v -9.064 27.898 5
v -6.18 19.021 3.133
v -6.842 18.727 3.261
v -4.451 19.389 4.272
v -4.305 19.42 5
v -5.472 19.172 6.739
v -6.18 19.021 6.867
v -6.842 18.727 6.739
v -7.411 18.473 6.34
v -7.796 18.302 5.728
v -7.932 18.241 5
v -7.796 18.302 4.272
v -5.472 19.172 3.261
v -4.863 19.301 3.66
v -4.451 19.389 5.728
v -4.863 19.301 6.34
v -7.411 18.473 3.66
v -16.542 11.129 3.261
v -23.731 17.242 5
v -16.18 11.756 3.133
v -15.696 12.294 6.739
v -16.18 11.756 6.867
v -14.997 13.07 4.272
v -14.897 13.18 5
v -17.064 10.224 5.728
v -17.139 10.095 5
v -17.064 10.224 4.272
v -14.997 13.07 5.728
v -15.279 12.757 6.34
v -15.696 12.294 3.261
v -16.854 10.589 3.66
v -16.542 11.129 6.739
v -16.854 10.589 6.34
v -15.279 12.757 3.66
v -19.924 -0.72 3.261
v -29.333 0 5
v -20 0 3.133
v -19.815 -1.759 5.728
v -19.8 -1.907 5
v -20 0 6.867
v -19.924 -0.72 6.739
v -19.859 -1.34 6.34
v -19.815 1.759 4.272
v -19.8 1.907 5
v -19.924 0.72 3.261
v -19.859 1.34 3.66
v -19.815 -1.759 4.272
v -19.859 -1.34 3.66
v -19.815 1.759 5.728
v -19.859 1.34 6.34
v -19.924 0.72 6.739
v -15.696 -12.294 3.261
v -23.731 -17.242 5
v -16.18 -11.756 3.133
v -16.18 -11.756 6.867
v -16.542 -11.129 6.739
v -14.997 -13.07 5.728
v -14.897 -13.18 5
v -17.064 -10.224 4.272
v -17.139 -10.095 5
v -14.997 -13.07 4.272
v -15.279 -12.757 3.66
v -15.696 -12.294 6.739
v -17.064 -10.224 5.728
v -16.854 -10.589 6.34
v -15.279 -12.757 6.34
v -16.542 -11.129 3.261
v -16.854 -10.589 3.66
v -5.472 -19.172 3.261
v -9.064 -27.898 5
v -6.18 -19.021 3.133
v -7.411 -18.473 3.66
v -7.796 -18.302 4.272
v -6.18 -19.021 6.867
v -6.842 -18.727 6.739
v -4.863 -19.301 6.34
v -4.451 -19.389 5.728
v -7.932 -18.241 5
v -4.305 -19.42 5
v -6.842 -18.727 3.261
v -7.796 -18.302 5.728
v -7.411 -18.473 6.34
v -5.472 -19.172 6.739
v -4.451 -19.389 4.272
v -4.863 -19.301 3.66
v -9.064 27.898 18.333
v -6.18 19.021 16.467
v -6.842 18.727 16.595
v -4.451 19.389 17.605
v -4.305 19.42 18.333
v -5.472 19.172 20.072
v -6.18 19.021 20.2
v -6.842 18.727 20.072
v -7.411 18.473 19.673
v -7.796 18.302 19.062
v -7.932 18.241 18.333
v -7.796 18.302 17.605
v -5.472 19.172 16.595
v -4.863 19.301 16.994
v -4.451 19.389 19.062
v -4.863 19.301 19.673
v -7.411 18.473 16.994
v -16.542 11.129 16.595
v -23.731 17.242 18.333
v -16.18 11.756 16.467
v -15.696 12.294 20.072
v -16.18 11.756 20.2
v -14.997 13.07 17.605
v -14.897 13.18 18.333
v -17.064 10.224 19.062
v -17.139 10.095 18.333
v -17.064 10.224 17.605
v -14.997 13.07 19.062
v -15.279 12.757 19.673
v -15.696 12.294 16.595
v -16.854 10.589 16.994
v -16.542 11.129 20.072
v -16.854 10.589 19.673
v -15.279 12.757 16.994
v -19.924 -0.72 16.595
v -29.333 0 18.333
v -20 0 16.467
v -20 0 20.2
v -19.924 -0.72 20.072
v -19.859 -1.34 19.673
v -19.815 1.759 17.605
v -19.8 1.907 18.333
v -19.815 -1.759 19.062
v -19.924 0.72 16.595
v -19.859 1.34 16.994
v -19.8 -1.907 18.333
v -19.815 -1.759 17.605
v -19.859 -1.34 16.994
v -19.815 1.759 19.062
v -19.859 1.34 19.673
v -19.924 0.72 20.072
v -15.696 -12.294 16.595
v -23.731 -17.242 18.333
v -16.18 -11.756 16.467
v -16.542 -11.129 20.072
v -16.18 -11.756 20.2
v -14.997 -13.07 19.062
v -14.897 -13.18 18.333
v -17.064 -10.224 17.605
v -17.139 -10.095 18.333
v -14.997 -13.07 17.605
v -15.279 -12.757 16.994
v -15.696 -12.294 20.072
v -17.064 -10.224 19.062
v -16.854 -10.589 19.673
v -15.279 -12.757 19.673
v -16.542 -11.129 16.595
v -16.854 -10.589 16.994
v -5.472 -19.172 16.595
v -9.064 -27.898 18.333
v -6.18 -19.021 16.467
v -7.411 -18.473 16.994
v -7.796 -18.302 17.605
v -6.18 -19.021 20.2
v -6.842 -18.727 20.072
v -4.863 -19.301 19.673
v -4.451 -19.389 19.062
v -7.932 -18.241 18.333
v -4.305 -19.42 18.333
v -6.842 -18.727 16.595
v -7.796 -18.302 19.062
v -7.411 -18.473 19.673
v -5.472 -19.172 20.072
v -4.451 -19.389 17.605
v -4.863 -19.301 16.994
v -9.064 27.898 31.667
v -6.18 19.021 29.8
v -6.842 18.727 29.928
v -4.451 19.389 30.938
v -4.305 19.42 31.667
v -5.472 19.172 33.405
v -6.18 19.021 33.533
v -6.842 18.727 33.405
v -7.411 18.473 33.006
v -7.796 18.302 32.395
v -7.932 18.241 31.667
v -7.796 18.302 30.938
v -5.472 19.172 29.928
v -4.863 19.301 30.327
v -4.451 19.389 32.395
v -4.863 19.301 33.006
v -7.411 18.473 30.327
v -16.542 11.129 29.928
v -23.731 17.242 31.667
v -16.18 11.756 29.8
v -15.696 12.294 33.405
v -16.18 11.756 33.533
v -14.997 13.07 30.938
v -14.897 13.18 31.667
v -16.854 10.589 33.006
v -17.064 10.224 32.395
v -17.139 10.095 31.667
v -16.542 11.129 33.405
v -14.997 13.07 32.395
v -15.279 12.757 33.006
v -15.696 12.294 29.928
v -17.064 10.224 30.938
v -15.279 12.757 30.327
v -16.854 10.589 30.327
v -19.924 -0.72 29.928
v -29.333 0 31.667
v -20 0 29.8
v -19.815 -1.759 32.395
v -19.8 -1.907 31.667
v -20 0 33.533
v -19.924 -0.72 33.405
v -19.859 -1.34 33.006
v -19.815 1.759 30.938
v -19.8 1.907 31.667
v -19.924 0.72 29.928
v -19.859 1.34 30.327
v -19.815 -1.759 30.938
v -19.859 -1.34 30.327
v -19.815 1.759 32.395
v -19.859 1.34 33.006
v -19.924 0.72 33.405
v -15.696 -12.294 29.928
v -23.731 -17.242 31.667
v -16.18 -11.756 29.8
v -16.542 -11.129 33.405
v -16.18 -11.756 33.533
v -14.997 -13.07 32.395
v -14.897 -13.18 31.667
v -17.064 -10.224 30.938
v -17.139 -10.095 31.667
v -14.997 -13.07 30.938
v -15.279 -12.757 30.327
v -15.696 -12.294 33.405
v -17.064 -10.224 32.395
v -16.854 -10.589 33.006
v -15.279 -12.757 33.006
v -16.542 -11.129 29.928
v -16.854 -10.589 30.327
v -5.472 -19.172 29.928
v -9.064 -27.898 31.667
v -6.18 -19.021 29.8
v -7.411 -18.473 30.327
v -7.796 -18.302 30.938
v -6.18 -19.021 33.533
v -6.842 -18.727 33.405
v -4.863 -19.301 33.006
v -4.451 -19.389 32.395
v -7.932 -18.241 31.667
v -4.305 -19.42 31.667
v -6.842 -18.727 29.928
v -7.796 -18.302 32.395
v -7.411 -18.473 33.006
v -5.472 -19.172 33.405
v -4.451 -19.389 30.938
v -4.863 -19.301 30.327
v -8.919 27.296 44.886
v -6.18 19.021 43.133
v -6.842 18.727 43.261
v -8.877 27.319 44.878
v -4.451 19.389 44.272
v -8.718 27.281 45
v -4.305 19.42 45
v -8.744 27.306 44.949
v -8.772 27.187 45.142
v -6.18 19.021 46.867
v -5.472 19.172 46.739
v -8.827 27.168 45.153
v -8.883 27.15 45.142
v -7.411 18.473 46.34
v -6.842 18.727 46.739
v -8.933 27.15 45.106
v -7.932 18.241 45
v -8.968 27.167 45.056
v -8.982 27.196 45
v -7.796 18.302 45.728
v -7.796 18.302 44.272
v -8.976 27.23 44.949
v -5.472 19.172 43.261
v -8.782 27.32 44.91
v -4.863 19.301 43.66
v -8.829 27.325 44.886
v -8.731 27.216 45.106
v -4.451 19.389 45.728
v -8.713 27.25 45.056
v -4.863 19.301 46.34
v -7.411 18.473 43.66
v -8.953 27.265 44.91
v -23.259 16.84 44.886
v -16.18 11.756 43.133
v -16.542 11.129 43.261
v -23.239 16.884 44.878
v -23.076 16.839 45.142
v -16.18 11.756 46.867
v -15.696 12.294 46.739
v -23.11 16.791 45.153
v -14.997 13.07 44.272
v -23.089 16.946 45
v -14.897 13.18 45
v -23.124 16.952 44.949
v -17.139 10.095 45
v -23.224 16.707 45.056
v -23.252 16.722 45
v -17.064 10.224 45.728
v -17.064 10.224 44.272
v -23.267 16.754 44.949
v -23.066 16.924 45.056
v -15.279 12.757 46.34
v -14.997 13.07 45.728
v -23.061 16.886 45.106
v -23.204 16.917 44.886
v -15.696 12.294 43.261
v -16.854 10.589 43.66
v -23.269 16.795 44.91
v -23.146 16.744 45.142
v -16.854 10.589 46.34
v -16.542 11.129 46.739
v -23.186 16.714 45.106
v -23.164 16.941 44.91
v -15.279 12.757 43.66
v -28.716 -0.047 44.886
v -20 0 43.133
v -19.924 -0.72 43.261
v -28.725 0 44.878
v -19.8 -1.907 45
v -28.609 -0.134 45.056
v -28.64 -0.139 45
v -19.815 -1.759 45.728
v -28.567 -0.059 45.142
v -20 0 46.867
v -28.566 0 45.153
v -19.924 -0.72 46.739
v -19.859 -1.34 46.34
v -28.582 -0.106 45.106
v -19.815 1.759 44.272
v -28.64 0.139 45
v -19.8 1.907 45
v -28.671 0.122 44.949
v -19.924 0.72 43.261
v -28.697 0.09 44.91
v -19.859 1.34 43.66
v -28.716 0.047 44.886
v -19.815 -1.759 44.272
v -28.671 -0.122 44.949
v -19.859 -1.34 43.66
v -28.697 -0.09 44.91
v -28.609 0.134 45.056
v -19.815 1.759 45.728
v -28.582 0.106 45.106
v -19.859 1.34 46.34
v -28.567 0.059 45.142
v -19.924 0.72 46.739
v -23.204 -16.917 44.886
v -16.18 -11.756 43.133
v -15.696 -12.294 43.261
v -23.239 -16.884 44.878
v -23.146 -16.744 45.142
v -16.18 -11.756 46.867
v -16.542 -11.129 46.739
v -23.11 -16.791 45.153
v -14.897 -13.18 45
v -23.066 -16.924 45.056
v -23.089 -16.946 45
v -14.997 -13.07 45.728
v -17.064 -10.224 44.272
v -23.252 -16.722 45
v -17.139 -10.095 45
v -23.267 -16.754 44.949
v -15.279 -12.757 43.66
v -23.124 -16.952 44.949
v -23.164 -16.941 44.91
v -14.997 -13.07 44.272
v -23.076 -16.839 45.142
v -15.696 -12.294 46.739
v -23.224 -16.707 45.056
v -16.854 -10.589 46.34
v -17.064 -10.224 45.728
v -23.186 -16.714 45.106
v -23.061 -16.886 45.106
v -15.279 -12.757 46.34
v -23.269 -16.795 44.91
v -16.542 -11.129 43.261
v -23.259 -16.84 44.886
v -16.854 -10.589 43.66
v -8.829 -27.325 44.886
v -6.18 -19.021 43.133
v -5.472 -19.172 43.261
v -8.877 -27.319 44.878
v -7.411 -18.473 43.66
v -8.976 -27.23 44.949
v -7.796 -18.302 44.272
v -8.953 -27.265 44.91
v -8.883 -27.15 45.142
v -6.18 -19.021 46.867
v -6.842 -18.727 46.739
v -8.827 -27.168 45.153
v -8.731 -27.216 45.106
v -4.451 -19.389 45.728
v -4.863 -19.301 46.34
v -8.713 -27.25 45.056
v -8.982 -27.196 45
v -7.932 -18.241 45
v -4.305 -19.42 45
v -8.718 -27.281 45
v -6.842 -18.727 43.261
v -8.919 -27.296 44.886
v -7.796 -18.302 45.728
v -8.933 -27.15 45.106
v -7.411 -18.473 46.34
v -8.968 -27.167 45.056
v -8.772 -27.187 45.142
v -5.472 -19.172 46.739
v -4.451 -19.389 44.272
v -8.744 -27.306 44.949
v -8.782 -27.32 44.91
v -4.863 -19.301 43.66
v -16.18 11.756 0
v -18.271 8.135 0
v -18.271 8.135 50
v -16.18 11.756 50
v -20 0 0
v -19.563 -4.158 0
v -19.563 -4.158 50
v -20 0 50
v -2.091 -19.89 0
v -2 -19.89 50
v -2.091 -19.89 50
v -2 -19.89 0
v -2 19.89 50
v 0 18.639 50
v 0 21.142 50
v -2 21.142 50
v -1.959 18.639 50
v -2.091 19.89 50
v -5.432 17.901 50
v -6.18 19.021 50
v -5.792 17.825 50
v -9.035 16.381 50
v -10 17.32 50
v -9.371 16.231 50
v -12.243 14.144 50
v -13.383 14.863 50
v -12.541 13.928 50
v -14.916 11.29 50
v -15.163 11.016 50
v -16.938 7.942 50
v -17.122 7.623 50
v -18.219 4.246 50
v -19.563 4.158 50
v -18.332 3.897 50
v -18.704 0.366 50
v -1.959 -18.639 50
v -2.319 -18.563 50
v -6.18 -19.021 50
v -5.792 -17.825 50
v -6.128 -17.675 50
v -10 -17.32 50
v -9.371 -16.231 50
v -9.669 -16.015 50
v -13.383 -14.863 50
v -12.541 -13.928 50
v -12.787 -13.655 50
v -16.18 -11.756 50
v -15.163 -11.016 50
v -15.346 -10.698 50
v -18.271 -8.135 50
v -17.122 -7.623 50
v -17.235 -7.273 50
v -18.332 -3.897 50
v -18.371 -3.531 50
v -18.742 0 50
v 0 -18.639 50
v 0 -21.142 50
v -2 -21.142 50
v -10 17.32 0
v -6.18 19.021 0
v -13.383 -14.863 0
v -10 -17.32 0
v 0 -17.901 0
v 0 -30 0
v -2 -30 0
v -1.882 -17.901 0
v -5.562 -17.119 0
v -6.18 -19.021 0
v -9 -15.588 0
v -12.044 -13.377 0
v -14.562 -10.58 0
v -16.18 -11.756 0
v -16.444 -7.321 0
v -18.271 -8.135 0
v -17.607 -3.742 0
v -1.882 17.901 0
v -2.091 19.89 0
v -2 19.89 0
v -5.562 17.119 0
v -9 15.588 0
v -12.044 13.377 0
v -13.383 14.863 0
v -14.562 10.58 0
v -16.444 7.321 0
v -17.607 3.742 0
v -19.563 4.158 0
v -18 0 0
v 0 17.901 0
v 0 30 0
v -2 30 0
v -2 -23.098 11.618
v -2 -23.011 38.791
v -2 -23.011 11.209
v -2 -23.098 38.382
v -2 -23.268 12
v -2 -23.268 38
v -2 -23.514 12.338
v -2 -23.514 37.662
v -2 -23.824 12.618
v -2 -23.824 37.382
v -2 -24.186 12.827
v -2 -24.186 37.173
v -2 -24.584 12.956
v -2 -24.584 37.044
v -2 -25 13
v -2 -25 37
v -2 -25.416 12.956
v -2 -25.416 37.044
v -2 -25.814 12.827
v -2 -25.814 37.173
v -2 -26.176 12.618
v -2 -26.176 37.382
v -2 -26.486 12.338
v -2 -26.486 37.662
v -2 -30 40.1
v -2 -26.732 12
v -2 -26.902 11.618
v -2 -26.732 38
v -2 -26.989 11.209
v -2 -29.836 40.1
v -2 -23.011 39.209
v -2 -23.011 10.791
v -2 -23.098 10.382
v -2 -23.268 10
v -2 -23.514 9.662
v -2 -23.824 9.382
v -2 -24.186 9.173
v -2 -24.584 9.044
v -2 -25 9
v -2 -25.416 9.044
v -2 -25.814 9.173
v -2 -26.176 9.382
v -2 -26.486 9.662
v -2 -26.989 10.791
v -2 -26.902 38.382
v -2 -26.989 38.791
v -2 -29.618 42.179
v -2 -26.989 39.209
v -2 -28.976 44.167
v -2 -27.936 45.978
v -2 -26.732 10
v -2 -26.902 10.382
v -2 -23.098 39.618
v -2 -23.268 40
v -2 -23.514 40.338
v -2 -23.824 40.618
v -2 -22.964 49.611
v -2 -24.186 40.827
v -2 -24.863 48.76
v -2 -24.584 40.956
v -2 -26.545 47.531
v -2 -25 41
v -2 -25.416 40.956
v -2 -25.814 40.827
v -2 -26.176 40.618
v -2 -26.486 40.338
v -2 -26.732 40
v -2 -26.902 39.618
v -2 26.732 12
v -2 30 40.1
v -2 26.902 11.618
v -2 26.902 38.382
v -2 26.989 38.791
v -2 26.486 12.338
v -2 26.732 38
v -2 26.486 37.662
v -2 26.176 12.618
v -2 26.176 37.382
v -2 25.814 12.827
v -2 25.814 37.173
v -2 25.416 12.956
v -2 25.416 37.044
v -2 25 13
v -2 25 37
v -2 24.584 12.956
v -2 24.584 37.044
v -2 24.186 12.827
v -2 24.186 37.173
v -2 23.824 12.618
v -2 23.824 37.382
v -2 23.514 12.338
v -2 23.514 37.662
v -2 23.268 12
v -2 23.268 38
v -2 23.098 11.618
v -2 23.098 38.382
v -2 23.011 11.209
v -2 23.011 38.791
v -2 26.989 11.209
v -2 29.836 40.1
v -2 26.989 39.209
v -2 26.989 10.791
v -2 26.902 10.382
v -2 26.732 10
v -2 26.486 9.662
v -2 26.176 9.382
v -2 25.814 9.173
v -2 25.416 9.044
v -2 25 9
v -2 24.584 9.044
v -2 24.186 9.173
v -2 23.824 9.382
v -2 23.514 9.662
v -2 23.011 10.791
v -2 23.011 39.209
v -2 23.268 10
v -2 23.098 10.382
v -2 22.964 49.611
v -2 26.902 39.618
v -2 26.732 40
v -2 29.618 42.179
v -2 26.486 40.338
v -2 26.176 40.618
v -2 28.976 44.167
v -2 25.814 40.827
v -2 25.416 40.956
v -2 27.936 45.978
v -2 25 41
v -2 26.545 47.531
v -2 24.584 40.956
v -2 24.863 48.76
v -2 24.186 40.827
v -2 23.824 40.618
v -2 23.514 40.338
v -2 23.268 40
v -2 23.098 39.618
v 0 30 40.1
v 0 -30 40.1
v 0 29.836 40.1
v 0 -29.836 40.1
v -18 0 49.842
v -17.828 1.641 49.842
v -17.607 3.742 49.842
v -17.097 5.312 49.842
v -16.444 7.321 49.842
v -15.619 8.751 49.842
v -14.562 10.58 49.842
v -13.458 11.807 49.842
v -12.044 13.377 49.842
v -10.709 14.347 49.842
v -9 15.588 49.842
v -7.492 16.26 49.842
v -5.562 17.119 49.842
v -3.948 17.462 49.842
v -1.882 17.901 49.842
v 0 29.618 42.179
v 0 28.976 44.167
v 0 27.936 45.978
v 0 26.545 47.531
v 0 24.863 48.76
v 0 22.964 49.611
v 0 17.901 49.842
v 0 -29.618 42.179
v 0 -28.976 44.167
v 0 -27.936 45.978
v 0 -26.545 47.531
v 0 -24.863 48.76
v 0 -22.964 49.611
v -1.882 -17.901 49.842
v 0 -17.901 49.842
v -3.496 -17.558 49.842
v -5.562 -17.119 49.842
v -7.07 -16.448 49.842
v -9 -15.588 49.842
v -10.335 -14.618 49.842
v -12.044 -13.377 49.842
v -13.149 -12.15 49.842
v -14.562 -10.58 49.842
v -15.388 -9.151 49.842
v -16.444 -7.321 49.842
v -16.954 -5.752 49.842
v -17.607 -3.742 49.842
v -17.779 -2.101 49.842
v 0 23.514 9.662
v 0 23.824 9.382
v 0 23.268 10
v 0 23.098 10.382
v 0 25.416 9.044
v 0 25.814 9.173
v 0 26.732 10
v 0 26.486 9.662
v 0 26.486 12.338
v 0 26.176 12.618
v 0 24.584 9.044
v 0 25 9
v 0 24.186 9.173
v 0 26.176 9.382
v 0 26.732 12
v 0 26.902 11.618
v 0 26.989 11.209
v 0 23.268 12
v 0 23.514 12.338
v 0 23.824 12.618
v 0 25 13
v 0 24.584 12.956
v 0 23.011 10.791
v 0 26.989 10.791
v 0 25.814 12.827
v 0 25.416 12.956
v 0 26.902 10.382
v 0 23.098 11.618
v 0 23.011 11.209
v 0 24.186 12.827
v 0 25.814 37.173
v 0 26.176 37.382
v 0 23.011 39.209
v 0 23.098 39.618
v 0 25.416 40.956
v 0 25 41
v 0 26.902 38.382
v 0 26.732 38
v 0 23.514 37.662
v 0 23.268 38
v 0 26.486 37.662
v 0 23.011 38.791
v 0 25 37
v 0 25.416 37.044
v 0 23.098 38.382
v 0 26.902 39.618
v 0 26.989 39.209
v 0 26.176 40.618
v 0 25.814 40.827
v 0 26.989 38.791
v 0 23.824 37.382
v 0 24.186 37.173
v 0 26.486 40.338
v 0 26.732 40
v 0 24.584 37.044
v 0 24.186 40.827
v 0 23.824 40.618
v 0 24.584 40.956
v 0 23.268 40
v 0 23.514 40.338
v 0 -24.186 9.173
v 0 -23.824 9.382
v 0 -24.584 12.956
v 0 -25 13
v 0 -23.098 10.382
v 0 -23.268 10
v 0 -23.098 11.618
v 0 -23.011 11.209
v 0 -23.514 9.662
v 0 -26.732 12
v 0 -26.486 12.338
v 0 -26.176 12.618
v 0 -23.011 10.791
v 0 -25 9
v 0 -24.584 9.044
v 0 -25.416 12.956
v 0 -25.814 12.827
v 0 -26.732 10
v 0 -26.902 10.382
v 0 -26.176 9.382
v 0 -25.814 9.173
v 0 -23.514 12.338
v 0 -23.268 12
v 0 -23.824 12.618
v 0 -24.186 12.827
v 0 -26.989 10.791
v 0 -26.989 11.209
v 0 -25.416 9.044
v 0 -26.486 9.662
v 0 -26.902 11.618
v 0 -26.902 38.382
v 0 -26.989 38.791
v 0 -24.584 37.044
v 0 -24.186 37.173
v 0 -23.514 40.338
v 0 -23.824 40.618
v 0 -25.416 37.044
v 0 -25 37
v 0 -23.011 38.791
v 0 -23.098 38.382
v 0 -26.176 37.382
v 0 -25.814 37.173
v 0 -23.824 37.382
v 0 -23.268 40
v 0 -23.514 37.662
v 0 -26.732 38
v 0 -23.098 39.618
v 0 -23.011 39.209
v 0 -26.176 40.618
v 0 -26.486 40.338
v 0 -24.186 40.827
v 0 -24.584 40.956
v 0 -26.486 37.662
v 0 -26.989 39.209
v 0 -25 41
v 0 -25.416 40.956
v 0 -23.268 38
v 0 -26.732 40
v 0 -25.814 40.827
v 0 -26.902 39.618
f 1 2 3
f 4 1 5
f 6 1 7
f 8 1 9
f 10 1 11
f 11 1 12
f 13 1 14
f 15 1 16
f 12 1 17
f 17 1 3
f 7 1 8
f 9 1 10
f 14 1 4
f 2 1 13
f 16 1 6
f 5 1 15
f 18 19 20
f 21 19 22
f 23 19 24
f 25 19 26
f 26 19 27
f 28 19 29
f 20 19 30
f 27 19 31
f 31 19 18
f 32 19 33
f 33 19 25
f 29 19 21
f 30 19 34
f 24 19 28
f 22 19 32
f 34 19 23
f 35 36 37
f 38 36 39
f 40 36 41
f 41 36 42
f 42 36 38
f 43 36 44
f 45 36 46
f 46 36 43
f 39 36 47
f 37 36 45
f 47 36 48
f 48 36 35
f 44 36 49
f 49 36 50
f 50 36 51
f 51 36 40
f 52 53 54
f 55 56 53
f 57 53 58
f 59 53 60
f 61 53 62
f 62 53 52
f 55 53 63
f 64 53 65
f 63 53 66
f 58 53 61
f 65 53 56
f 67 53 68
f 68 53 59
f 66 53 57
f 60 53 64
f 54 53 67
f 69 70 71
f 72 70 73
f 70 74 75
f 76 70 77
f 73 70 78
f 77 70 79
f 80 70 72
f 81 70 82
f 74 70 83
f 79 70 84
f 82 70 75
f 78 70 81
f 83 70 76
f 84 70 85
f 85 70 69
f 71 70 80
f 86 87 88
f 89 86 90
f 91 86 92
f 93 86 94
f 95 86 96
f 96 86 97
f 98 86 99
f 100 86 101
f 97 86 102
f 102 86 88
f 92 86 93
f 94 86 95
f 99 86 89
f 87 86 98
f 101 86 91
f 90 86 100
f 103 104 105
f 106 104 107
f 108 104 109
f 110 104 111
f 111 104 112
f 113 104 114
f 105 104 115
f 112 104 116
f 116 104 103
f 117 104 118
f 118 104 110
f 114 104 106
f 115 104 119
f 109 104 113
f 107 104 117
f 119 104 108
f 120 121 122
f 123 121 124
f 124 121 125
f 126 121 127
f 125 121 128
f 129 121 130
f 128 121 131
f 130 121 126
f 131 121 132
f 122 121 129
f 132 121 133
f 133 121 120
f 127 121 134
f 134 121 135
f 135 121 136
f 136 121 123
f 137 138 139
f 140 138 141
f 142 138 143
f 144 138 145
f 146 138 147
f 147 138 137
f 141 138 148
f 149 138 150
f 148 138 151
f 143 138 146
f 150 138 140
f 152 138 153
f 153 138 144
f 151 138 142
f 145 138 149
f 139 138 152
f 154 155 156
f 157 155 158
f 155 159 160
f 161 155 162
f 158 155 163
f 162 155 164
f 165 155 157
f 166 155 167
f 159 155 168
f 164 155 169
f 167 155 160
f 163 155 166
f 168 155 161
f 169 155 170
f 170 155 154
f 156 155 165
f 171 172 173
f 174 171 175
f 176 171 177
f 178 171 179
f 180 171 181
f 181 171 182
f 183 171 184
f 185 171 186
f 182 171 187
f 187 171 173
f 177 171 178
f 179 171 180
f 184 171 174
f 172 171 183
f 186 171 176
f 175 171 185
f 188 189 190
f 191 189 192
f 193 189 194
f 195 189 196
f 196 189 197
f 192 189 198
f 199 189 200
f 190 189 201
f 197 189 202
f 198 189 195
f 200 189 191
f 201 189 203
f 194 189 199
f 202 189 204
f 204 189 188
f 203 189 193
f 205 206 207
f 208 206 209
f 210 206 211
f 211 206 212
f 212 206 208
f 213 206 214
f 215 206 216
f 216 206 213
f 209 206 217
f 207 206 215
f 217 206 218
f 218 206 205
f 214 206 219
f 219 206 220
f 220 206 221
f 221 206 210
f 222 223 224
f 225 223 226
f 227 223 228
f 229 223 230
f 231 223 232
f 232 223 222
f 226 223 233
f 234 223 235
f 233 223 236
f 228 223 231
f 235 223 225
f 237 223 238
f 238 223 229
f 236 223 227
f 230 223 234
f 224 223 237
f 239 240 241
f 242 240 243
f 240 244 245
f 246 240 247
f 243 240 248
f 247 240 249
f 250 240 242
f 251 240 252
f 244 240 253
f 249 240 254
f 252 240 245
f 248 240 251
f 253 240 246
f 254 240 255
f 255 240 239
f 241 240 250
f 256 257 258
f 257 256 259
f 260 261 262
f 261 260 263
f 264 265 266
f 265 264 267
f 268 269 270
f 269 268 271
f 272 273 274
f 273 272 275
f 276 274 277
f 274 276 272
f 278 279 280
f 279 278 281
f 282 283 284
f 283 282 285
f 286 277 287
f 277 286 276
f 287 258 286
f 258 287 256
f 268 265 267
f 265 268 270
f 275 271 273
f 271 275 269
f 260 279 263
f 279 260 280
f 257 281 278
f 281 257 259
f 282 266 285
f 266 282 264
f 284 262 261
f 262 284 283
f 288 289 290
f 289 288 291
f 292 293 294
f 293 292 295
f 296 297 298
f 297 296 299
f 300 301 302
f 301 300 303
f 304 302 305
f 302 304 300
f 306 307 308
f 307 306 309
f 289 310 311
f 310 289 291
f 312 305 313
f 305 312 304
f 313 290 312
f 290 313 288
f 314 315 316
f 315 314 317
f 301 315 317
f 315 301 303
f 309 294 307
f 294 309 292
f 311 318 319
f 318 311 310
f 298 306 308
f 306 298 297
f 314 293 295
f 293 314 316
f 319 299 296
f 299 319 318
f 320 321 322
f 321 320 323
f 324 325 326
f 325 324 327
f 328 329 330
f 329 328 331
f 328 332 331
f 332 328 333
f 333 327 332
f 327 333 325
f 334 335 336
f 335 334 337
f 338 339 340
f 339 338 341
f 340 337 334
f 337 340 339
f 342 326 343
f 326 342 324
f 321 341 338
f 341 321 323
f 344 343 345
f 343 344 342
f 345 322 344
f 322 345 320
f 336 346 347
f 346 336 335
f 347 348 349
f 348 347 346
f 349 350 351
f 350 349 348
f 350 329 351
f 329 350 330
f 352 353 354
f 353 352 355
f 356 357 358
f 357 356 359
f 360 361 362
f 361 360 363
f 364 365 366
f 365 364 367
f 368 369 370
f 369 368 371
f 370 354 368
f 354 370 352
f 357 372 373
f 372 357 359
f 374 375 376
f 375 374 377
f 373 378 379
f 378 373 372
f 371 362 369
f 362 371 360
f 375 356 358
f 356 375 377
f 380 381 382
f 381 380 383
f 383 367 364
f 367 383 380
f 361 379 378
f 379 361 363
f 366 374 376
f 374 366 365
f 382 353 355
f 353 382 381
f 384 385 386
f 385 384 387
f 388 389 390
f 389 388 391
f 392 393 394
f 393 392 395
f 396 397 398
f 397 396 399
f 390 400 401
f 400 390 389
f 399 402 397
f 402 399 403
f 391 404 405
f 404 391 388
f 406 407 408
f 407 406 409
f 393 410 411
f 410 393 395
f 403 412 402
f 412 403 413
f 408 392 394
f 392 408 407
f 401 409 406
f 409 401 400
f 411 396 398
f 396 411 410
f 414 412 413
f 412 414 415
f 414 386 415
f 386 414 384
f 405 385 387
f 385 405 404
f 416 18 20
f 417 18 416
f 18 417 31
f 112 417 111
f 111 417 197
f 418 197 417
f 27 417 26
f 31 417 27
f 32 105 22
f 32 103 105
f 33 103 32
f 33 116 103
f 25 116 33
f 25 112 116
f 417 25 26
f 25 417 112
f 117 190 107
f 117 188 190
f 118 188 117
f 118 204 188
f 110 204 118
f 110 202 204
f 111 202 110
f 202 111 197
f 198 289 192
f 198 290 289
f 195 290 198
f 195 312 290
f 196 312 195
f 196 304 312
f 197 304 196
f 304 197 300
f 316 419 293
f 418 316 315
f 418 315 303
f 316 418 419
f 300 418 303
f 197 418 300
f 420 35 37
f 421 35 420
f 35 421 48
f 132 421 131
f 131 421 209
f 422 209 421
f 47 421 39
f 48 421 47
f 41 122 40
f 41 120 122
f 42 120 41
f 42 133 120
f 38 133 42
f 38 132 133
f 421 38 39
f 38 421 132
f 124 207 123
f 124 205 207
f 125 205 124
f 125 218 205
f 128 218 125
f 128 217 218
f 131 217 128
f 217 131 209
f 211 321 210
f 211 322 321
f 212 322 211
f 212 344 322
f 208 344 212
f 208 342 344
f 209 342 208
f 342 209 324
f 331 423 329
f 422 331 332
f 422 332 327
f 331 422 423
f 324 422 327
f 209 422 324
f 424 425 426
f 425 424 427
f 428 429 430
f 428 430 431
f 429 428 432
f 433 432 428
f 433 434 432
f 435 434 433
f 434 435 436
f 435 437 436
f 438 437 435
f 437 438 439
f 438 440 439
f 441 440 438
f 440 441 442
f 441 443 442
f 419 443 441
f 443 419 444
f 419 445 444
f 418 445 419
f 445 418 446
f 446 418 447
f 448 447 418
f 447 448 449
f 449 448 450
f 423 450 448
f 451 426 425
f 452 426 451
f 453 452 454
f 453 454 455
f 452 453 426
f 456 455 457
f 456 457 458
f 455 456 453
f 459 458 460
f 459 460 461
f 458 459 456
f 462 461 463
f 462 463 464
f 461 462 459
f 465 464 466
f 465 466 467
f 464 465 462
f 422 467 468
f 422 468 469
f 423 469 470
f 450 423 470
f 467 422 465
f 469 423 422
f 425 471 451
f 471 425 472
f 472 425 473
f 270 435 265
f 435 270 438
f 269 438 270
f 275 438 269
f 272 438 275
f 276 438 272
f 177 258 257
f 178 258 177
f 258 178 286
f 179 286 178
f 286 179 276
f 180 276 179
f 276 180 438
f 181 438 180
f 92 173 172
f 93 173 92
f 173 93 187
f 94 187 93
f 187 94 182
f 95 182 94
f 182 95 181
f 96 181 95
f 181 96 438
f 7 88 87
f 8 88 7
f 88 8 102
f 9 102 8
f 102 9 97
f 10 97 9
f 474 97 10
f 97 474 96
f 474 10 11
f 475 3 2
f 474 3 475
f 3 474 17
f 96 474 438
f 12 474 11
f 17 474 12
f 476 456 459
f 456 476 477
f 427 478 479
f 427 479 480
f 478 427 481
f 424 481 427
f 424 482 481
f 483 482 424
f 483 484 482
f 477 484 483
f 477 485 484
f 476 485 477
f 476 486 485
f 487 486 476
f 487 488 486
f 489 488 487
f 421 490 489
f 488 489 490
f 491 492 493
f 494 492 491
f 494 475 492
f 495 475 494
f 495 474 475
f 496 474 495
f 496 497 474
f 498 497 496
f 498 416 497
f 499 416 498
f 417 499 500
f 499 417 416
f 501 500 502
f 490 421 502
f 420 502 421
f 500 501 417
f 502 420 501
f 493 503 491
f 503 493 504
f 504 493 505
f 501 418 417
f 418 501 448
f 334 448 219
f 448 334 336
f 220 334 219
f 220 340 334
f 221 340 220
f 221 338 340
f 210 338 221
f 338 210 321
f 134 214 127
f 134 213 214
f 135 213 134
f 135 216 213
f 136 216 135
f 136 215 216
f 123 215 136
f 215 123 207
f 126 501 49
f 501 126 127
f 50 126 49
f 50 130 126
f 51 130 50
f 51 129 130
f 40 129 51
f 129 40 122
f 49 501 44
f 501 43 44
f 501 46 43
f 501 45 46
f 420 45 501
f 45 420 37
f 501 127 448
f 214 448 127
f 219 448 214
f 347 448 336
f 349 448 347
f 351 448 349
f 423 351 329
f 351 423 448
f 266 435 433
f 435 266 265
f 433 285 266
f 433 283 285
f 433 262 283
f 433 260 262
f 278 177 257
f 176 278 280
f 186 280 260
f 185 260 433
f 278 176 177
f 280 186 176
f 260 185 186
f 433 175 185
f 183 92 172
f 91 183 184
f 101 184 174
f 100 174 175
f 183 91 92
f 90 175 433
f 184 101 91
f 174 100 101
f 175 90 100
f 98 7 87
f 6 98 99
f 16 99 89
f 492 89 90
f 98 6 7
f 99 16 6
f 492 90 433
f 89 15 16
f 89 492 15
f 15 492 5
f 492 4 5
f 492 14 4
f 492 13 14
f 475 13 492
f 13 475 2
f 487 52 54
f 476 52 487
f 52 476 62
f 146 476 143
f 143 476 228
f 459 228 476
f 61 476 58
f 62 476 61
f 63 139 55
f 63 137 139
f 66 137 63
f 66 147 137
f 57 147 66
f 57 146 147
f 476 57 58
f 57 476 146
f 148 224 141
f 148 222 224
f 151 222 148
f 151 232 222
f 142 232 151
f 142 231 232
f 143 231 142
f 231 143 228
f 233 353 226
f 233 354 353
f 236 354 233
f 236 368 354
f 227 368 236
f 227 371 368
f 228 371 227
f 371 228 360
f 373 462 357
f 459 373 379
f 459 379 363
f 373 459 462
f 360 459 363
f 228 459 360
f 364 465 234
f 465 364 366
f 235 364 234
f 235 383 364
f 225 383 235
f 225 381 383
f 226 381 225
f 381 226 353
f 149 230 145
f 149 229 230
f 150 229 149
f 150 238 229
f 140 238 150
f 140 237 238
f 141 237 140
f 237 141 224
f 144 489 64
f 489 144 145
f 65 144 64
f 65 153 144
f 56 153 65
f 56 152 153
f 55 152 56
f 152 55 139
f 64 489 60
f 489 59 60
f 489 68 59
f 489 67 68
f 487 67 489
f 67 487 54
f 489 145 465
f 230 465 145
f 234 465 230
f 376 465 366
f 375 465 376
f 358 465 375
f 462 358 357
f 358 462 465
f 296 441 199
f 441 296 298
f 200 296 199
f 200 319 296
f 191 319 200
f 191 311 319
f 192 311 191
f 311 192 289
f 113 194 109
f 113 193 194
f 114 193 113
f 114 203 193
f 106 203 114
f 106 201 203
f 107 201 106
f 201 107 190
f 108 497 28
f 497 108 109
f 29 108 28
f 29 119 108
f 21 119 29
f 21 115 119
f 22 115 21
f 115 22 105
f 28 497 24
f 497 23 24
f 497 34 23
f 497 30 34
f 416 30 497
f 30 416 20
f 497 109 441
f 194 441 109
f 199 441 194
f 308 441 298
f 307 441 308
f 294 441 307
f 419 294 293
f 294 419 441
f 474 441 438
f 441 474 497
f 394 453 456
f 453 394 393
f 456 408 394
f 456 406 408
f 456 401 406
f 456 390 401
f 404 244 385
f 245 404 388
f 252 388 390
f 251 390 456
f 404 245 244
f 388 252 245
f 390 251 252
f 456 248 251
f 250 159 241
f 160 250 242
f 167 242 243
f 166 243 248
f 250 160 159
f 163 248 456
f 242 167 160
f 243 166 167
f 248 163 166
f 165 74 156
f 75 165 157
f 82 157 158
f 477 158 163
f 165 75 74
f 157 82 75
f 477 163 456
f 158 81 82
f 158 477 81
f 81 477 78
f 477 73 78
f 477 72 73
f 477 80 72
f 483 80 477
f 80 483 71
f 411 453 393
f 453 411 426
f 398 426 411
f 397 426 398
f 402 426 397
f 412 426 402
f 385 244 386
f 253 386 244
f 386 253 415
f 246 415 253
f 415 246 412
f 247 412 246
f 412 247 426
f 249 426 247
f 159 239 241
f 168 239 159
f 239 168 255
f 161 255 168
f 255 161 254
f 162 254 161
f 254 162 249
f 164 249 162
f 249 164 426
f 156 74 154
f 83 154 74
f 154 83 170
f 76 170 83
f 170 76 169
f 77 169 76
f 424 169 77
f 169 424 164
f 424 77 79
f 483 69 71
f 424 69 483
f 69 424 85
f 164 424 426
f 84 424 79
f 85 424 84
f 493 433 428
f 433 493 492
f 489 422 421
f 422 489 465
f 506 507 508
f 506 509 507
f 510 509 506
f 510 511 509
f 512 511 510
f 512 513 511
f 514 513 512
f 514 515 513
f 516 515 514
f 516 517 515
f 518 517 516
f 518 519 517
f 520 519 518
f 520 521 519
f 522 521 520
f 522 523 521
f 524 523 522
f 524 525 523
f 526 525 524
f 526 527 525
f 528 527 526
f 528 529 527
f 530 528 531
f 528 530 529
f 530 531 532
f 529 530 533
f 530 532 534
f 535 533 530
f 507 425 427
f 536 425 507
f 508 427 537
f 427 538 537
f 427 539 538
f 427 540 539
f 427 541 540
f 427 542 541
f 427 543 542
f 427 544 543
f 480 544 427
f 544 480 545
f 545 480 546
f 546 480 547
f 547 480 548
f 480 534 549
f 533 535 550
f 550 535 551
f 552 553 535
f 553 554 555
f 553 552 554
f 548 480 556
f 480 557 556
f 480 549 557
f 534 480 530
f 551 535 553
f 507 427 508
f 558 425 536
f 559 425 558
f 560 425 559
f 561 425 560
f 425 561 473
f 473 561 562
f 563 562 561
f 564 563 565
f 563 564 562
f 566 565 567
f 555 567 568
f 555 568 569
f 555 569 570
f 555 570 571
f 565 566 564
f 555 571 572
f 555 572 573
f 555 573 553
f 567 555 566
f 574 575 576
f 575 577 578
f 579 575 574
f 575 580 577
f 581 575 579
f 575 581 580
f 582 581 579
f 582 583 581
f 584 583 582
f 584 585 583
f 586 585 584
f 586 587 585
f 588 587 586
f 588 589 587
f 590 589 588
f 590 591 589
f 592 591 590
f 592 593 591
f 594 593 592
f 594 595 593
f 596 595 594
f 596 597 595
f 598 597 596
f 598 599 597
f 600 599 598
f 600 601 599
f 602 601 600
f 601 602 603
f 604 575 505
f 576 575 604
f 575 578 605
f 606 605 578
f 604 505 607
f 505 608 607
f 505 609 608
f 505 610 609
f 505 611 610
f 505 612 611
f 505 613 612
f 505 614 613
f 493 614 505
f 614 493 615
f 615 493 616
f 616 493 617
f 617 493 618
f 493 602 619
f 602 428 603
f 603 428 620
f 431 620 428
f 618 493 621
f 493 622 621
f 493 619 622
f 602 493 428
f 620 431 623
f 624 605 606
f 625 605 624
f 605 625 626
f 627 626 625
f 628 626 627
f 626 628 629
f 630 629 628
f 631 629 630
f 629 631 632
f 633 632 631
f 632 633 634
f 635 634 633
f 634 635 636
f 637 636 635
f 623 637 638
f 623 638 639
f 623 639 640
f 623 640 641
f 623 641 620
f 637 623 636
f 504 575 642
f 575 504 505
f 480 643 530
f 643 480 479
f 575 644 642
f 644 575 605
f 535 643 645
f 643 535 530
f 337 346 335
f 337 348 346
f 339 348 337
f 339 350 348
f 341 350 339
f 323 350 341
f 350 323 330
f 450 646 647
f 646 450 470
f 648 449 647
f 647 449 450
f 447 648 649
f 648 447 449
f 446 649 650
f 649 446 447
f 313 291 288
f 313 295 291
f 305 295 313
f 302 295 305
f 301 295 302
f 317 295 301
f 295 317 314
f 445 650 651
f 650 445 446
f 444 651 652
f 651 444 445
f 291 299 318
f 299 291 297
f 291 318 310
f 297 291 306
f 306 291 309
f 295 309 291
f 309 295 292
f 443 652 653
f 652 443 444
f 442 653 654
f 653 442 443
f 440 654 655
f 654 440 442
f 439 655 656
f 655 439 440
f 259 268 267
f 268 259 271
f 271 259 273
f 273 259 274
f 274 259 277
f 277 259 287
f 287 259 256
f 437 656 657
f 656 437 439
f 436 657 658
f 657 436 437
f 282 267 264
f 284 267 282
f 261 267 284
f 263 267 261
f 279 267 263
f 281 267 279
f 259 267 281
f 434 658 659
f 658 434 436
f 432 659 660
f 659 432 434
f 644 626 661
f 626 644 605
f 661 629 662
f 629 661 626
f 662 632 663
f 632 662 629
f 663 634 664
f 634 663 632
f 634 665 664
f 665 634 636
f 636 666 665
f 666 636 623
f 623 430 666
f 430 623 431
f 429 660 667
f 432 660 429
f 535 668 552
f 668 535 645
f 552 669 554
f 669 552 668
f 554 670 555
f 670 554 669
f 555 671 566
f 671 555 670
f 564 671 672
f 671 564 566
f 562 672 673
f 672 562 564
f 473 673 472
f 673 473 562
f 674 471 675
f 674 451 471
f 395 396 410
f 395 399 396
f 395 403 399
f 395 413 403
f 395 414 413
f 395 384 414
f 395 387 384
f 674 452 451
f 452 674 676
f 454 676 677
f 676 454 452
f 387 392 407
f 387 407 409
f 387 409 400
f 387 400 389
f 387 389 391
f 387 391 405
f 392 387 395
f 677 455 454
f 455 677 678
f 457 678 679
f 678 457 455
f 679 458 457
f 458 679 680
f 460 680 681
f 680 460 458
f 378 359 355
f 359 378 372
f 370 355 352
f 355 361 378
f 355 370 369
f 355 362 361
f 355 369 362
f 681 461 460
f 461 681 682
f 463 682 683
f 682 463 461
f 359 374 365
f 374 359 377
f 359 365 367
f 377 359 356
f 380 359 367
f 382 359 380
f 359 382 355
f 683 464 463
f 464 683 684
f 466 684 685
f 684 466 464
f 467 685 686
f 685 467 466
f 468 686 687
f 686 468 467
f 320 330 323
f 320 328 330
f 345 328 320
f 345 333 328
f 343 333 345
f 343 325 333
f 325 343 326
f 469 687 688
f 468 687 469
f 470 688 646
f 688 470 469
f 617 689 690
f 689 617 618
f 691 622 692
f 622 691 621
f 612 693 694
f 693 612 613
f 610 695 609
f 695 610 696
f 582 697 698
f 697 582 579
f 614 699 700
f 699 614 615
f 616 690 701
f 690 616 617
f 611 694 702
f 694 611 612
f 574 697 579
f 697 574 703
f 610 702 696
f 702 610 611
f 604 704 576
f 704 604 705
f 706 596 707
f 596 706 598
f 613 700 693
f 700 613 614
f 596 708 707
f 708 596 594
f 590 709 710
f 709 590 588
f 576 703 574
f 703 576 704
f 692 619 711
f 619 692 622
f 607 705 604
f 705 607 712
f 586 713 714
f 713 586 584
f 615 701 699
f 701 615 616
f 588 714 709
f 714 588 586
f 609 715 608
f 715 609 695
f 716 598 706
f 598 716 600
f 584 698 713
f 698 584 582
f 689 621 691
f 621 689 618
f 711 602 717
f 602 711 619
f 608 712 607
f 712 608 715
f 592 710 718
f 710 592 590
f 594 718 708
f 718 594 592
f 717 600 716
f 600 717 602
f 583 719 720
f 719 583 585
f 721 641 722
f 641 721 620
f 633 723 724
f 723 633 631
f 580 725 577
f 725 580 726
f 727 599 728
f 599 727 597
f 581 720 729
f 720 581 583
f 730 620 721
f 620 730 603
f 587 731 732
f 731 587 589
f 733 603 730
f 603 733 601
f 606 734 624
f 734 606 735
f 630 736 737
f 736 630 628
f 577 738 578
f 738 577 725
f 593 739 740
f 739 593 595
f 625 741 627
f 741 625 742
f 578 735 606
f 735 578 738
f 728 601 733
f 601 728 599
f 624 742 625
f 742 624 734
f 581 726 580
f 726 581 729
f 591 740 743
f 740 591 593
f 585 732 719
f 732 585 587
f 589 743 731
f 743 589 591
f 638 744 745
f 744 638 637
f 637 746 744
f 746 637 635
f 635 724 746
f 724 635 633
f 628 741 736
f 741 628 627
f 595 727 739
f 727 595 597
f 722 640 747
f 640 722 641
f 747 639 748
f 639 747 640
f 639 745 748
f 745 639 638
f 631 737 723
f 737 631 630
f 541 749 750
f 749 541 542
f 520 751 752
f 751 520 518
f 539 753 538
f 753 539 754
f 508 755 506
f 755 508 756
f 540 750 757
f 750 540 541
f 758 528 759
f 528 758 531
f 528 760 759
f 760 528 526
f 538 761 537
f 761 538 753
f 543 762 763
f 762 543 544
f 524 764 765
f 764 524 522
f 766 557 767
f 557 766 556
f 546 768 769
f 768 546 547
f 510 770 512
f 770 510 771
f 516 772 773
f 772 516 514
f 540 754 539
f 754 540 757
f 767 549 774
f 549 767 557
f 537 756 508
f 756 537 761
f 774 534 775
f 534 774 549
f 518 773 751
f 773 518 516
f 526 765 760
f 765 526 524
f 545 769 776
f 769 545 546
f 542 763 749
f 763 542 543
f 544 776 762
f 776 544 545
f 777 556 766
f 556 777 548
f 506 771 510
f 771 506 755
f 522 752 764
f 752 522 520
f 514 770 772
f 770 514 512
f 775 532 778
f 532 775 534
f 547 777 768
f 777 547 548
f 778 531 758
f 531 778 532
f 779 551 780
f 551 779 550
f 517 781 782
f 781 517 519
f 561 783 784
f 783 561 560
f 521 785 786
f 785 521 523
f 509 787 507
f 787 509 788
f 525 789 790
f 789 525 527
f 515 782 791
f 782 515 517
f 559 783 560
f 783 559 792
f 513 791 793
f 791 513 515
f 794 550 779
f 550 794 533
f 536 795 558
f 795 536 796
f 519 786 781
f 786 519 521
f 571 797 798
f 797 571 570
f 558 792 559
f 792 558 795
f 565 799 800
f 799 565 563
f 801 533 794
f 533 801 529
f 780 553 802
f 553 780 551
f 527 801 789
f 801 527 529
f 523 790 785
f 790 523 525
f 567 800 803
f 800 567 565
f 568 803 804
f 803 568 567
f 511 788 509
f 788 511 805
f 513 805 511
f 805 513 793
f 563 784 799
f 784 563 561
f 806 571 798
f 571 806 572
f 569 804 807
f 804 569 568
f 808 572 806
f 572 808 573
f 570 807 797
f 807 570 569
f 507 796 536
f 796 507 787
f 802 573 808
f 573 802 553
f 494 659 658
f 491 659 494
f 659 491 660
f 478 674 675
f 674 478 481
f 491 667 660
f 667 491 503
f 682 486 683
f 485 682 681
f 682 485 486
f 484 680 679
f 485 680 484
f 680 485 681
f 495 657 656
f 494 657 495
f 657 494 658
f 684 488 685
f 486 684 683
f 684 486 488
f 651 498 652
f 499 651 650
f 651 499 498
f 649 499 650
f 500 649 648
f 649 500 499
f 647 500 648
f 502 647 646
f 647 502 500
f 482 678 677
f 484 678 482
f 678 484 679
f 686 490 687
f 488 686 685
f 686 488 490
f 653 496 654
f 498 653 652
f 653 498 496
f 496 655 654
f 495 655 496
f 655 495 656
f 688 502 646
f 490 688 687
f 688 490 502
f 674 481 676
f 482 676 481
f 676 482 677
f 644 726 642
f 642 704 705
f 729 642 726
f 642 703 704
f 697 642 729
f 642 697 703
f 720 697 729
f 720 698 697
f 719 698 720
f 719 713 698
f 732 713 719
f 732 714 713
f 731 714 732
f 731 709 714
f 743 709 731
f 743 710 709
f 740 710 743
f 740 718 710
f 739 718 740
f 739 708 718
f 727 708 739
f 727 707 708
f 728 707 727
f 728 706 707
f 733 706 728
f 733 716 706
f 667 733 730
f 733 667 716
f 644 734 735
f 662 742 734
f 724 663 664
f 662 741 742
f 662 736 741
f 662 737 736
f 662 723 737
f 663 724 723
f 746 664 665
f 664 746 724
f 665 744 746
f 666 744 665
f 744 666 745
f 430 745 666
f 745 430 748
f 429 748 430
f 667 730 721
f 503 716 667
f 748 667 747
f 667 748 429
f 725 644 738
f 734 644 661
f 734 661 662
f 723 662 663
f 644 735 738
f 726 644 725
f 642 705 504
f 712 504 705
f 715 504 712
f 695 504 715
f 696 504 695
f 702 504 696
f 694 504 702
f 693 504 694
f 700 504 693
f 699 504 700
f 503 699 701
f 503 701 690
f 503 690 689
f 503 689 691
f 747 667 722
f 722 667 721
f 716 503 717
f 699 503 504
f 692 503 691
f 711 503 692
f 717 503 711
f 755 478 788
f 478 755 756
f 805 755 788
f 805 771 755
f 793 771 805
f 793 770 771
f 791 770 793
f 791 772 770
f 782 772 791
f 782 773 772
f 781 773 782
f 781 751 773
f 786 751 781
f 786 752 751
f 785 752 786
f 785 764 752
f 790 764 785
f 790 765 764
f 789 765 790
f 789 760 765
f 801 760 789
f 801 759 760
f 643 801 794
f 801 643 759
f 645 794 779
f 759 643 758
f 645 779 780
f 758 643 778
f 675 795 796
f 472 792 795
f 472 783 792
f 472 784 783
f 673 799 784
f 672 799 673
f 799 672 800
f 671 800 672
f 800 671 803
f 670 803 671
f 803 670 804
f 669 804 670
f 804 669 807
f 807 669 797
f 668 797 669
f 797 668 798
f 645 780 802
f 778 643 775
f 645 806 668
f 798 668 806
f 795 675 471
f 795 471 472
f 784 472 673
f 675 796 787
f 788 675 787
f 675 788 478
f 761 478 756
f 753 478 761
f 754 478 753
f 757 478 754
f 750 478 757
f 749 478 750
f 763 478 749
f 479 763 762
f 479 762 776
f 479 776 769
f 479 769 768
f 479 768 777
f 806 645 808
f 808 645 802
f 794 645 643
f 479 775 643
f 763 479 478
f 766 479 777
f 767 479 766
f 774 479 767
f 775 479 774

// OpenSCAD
// 2021 (c) KAKL
// protection against beating of dogs legs

$fn = 30;

inner = 36;
cheight=50;
tl = 4;
screw = 4.0;
size =  inner + tl;
packy = size + 20;
spike_length=size/3;
spike_r=size/15;


module Spike()
{
    offset=4;
    translate([0,0,size/2-offset])
    cylinder(r1=spike_r,r2=0,h=spike_length, $fn=16);
}

module ACylinder()
{
    cylinder(d=size, h=cheight);
    Spikes();
}


module Spikes()
{
    nx=10;
    ny=3;


    for (j=[0:1:ny])
    {
        hj=(cheight-10)*j/ny;
        nxi=nx;
        for (i=[0:1:nxi-1])
        {
            ai=360/nxi*i*nxi/floor(nxi);
            translate([0,0,hj+5])
            rotate([0,0,ai])
            rotate([0,90,0])
            Spike();
            

        }
    }

}

module hole()
{
    rotate([0,90,0]) cylinder(d=screw, h=size * 2, center = true);
}

difference()
{
    union()
    {
        translate([-tl/2,-packy/2,0]) cube(size = [size,packy,cheight], center = false);
        ACylinder();
    };

    // diry v packach
    translate([0,packy/2-5,11]) hole();
    translate([0,packy/2-5,cheight-11]) hole();
    translate([0,-packy/2+5,11]) hole();
    translate([0,-packy/2+5,cheight-11]) hole();
    
    cylinder(d=inner, h=cheight+10);
    translate([0,-size-1,-1]) cube(size = [size,size*3,cheight+10], center = false);

    translate([0,0,0.1]) difference()
    {
        translate([-100,-100,cheight-10]) cube(size = [200,200,10], center = false);
        rotate_extrude() translate([size/2,cheight-10,0]) circle(10);
        translate([-100,-100,cheight-10-10]) cube(size = [200,200,10], center = false);
    };
    /*
    difference()
    {
        cylinder(d=packy*2, h=cheight+10);
        cylinder(d=packy-3, h=cheight+10);
    };
    */
};
